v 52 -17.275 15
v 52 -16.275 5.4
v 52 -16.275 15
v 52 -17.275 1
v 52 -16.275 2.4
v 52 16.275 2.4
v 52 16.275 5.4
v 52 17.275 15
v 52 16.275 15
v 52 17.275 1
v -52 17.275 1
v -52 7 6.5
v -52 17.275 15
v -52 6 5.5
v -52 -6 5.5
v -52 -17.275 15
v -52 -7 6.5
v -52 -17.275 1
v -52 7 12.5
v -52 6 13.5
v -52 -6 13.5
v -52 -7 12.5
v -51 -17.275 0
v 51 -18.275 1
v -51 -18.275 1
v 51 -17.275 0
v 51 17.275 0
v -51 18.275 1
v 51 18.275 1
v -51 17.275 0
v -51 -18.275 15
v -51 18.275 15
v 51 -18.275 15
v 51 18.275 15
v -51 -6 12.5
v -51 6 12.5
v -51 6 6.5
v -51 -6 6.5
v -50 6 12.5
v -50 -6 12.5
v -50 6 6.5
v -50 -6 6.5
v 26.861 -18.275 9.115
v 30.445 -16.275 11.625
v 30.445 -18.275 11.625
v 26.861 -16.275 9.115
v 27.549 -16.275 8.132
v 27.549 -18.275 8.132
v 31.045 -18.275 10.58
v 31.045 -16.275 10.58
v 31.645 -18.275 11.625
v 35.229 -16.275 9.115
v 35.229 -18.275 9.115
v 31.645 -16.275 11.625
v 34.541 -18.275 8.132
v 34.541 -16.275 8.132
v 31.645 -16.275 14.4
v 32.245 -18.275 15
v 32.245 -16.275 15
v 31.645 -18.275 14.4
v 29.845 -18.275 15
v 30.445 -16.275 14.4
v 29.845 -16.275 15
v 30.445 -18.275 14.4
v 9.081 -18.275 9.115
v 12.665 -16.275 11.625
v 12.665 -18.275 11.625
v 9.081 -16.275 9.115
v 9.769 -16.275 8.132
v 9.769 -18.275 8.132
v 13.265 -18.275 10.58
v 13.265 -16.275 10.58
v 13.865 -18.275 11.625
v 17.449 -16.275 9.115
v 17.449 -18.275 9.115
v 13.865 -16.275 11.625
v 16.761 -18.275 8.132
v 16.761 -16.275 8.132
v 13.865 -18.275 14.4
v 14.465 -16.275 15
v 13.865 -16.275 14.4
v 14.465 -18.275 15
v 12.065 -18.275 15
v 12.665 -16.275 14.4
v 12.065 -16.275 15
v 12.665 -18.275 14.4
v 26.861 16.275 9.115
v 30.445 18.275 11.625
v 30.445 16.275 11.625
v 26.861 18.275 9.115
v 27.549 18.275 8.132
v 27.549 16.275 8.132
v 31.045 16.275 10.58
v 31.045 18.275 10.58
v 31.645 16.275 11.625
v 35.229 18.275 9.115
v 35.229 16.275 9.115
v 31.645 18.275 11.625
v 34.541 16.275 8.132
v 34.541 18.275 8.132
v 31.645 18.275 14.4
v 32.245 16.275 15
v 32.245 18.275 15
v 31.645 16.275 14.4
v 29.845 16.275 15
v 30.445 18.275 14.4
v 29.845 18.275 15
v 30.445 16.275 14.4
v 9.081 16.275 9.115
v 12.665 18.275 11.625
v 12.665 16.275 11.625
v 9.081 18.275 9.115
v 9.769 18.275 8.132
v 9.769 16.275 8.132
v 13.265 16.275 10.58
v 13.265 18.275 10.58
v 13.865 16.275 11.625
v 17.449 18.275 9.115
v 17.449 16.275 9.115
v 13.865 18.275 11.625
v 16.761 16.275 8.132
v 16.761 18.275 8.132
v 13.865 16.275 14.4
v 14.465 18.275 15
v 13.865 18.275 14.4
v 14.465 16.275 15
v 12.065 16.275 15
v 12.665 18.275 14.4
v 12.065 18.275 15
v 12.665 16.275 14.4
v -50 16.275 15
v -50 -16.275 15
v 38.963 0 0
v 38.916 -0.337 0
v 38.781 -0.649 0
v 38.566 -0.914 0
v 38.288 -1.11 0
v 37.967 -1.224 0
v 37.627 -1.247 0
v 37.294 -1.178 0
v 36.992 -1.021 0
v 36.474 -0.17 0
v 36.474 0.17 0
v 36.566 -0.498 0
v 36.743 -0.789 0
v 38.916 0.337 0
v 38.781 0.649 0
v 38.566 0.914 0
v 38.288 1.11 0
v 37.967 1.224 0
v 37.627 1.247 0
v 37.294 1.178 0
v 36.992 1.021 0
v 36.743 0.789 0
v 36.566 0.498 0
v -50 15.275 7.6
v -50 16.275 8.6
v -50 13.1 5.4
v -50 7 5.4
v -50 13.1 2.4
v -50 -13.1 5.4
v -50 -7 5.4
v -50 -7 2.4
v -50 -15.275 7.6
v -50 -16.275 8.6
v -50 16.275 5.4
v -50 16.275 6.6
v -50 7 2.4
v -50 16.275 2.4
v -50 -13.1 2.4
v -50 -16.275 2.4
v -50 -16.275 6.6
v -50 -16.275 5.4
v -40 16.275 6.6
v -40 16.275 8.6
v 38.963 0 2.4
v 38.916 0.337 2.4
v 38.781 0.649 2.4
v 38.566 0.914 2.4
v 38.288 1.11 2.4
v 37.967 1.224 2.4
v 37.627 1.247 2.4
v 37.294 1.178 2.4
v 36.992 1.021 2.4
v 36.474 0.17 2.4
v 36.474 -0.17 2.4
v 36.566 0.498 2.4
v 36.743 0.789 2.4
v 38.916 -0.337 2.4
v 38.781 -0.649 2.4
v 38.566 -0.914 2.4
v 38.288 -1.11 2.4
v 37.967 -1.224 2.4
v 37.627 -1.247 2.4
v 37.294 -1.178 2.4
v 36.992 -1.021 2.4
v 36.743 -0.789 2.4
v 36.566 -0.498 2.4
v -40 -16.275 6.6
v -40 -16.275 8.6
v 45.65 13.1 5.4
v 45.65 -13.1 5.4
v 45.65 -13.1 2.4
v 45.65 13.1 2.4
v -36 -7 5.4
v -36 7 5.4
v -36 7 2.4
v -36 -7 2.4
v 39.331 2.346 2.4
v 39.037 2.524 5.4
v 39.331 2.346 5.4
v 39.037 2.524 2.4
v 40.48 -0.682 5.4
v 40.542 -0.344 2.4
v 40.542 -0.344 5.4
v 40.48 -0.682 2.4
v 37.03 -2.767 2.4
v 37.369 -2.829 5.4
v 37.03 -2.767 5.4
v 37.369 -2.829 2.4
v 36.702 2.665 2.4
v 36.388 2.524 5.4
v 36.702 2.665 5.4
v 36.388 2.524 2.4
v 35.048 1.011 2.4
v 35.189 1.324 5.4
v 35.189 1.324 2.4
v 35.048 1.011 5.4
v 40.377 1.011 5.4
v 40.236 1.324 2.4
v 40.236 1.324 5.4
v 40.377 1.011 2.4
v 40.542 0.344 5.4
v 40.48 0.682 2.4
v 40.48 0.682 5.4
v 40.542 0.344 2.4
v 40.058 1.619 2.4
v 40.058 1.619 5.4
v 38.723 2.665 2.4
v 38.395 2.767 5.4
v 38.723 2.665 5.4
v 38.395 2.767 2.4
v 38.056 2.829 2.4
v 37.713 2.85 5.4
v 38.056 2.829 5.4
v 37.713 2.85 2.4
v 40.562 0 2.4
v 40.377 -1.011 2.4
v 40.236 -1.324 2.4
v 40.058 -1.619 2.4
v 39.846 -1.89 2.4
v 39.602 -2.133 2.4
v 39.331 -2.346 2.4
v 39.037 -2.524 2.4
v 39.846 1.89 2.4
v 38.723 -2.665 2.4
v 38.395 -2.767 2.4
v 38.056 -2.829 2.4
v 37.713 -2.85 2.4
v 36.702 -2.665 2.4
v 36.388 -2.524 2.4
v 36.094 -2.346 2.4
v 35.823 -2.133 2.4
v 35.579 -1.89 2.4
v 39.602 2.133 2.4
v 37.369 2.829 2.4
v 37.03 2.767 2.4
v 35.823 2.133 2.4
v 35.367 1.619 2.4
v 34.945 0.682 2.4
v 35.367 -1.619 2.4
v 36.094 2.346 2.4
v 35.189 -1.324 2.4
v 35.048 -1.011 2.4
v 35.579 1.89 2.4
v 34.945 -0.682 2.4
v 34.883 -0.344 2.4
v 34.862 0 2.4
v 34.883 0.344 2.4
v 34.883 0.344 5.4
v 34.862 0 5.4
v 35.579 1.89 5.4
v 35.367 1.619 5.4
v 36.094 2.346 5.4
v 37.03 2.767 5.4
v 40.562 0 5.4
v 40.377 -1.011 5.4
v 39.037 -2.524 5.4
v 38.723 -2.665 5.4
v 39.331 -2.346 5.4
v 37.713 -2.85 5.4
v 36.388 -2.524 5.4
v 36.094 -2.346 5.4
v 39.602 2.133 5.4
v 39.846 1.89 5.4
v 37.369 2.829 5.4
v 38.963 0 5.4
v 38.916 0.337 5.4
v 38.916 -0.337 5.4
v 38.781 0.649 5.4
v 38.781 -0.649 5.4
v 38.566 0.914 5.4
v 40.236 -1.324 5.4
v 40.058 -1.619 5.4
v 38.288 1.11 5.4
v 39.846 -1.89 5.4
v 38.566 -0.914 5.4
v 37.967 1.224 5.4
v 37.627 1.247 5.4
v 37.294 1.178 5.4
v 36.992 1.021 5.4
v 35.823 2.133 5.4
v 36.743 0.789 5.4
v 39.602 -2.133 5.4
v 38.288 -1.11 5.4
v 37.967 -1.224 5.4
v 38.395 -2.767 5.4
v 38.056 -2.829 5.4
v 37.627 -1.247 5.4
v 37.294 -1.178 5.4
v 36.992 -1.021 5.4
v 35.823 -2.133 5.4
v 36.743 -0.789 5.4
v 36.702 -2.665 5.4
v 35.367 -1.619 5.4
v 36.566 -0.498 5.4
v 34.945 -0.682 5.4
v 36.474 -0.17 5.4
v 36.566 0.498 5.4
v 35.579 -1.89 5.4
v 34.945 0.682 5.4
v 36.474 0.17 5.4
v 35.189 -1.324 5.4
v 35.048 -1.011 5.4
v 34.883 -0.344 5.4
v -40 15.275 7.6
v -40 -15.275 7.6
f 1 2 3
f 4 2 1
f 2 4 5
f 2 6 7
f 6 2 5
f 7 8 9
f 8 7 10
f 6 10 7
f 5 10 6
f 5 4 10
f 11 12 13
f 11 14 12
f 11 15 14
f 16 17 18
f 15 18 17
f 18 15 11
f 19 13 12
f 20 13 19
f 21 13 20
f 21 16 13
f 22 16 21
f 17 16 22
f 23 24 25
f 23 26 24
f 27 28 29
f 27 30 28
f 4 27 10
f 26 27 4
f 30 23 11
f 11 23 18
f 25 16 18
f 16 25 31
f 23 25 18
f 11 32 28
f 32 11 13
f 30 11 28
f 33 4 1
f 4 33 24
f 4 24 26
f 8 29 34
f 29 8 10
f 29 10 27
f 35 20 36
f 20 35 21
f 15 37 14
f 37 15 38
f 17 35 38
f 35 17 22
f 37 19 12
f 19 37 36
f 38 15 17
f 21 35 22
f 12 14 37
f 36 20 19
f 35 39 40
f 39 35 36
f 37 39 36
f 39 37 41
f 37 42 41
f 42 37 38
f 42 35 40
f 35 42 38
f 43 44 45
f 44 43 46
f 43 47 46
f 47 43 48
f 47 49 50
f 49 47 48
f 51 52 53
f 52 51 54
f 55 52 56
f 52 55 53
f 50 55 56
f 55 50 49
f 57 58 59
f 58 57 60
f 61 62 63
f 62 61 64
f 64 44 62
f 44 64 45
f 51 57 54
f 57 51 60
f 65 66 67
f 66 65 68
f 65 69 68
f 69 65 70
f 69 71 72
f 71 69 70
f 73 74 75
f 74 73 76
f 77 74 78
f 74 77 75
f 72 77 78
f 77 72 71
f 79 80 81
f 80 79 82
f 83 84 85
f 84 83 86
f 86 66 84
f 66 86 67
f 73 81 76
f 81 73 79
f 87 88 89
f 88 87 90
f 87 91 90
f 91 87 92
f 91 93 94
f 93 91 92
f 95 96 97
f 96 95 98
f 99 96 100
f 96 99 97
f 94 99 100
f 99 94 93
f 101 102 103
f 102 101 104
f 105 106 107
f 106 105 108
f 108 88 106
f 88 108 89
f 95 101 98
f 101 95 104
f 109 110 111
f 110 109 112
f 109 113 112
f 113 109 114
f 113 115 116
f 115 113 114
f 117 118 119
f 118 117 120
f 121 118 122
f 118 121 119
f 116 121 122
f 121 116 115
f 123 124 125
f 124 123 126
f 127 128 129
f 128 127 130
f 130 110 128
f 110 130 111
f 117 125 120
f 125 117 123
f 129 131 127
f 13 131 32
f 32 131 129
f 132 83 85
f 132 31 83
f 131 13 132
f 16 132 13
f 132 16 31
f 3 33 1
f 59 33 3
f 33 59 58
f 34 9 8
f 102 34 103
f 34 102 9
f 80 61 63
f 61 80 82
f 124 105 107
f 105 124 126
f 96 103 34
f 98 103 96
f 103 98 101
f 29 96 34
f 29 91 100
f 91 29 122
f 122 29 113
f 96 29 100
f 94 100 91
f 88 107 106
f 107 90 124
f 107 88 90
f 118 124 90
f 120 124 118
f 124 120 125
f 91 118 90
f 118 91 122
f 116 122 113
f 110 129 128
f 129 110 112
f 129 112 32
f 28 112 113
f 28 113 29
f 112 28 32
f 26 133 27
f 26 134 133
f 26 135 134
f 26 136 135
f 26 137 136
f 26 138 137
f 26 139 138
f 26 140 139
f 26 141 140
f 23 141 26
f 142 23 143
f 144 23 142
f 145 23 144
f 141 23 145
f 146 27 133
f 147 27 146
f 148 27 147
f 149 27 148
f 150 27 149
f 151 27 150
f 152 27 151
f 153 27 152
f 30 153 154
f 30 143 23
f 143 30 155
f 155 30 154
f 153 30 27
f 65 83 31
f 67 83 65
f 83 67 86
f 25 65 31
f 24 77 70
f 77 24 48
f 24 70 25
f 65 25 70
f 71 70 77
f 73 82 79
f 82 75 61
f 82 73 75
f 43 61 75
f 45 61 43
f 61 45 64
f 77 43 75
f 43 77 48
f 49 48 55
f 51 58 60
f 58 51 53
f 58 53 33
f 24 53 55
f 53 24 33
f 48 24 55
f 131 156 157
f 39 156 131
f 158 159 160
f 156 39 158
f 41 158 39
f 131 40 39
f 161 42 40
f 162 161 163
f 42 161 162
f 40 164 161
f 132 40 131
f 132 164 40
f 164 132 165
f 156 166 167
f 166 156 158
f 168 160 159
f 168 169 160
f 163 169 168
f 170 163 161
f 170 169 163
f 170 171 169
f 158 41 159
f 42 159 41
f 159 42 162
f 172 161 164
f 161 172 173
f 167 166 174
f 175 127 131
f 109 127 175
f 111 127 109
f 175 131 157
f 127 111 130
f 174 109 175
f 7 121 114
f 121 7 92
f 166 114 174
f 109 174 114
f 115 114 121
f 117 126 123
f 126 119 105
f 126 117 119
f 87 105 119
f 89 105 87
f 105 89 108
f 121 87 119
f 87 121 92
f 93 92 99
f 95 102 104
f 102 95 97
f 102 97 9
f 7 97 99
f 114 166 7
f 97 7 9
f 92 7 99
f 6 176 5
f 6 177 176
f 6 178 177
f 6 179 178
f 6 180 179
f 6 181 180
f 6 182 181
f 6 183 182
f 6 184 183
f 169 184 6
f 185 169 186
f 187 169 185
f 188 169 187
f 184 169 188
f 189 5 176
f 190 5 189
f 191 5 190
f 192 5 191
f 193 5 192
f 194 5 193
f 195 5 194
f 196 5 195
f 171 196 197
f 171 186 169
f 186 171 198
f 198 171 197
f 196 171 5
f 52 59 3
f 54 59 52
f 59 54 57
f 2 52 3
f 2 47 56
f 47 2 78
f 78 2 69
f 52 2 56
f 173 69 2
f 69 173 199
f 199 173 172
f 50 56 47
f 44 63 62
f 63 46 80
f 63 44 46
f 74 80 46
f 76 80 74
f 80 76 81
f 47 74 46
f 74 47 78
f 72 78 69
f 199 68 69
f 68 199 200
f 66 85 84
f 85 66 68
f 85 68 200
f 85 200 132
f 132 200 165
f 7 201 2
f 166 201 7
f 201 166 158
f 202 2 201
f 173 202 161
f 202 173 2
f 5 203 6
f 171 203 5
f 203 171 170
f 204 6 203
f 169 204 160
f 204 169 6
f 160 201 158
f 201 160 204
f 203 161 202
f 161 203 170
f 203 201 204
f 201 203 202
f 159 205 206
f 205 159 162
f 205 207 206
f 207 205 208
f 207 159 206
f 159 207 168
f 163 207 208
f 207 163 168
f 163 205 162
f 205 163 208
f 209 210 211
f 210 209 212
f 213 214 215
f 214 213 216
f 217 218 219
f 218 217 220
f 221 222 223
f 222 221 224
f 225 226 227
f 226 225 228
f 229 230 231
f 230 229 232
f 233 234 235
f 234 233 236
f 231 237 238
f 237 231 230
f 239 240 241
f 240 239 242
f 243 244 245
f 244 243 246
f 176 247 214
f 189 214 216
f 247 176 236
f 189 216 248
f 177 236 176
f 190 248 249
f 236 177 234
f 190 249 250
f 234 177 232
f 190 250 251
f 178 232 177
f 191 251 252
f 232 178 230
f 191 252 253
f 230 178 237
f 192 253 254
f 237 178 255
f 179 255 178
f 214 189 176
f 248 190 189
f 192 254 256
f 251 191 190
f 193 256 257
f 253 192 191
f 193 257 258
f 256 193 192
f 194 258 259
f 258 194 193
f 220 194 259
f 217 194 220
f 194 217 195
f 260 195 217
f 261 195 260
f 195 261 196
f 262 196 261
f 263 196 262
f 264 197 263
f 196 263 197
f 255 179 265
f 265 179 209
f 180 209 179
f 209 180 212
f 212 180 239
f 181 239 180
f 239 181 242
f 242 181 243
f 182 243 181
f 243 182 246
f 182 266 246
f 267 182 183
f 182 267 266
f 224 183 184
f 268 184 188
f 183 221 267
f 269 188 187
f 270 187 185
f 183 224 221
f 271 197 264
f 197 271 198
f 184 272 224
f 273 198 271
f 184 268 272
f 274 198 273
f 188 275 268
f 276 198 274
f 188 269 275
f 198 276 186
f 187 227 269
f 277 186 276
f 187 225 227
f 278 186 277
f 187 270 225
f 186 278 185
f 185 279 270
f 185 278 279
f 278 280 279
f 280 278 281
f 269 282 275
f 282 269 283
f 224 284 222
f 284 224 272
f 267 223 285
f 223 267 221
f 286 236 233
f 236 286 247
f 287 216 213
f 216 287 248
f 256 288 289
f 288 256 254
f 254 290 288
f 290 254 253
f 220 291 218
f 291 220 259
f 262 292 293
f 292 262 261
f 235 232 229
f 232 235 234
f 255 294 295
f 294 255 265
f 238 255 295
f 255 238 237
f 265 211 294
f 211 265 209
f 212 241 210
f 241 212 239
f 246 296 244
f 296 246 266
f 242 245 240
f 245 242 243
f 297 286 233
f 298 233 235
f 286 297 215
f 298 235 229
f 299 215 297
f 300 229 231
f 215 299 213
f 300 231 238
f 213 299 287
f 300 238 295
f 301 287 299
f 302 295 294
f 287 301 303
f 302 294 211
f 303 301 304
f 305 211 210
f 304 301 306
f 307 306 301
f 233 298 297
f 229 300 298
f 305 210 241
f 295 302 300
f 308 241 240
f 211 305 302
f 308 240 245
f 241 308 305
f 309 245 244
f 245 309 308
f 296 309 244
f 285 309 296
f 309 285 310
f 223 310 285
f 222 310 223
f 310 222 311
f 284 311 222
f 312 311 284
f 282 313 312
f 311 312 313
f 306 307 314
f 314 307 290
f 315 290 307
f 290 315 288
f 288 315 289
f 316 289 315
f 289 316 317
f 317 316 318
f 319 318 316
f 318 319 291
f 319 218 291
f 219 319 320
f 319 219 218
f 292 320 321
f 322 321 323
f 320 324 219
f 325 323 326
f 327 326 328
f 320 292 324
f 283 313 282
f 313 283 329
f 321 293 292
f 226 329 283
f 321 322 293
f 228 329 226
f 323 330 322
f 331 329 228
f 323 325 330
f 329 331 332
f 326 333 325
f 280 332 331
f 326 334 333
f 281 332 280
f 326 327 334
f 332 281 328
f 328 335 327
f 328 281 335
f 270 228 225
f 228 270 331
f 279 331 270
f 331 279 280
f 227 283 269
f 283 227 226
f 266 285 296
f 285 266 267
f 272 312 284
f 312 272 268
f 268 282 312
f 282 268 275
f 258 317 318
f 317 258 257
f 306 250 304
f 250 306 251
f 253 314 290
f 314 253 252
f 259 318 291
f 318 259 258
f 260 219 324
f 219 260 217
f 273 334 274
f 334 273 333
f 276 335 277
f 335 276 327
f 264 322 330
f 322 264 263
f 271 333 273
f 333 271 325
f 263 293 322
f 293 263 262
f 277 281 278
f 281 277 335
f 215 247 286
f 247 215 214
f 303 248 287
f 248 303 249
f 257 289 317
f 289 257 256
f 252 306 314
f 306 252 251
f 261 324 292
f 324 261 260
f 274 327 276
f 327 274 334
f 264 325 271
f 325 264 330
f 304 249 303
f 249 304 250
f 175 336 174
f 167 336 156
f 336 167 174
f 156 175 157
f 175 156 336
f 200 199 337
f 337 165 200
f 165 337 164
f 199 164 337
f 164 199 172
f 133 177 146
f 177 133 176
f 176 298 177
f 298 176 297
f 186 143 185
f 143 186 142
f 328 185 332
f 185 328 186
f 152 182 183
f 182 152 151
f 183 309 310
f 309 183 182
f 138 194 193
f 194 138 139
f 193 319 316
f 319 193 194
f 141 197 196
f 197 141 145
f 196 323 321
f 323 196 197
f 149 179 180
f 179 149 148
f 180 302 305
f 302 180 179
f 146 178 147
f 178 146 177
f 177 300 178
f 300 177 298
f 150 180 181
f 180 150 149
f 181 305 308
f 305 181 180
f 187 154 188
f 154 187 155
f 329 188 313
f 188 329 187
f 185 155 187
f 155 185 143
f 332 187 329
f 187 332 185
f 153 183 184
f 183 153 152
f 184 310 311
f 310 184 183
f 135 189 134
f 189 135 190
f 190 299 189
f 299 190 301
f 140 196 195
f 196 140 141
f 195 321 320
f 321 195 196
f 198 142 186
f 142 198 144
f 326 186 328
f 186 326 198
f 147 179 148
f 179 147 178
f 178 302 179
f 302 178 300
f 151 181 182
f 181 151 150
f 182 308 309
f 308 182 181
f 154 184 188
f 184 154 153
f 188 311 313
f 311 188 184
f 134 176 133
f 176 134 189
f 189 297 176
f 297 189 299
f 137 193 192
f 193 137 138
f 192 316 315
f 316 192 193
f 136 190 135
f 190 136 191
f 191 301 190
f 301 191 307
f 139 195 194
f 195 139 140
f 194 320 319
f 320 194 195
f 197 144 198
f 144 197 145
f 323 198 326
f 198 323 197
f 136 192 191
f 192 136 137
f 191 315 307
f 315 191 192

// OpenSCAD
function in2mm(v) = 25.4*v;

$fa = 0.5;
$fs = 0.35;
eps = 1;

wall = 2;
standoff_wall = 1.6;

pcb_width = in2mm(1.25);
pcb_length = in2mm(4);
pcb_height = 1.6;

pcb_clearance = 0.4;
pin_clearance = 3;

rgb_offset_x = in2mm(0.825);
rgb_offset_y = in2mm(0.175);
rgb_spacing = in2mm(0.7);

rgb_cable_width = 5;
rgb_cable_height = 1.2;

usb_width = 12;
usb_height = 6;
usb_center_offset_z = 2.5;

case_width = 2*wall + 2*pcb_clearance + pcb_width;
case_length = wall + pcb_clearance + pcb_length;
case_floor = 2.4;
case_pcb_depth = 8;
case_height = case_floor + pin_clearance + pcb_height + case_pcb_depth;

screw_diameter = 2.5;
screw_length = 6;
screw_offset = in2mm(0.5625);

clip_size = 1;

assert(pcb_height + pin_clearance + case_floor >= screw_length, "screw is too long for the mounting hole");

module mirror_x() {
    children(); mirror([1, 0, 0]) children();
}

module mirror_y() {
    children(); mirror([0, 1, 0]) children();
}

module mirror_z() {
    children(); mirror([0, 0, 1]) children();
}

module rgb_cable_guide(h, angle=45) {
    translate([0, -eps/2, -h])
    union() {
        mirror_x()
        translate([rgb_cable_height/2, 0, 0])
        rotate([0, -angle, 0])
        translate([-rgb_cable_width, 0, 0])
        cube([rgb_cable_width, wall + eps, rgb_cable_height]);

        translate([-rgb_cable_height/2, 0, 0])
        cube([rgb_cable_height, wall + eps, h + eps]);

        mirror_x()
        translate([rgb_cable_height/2, (wall + eps)/2, h])
        rotate([180, 0, 90])
        chamfer_mask(rgb_cable_height/2, wall + eps);
    }
}

module chamfer_mask(s, length) {
    rotate([0, -90, 0])
    linear_extrude(length, center=true)
    polygon([
        [-eps, -eps], [s, -eps], [s, 0], [0, s], [-eps, s]
    ]);
}

module chamfer_outside_corner_mask(s) {
    polyhedron(
        points = [
            [0, 0, 0], [0, 0, s],
            [s, 0, s], [s, 0, 0],
            [0, s, s], [0, s, 0],
            [s, s, 0]
        ],
        faces = [
            // chamfer face
            [2, 4, 6],
            // side faces
            [2, 6, 3],
            [0, 1, 2, 3],
            [5, 4, 1, 0],
            [5, 6, 4],
            // top
            [1, 4, 2],
            // bottom
            [0, 3, 6, 5],
        ]
    );
}

module chamfer_inside_corner_mask(s) {
    polyhedron(
        points = [
            [eps, 0, 0], [0, eps, 0], [0, 0, eps],
            [0, 0, -s], [eps, 0, -s], [0, eps, -s],
            [-s, 0, 0], [-s, eps, 0], [-s, 0, eps],
            [0, -s, 0], [eps, -s, 0], [0, -s, eps],
        ],
        faces = [
            // chamfer face
            [3, 6, 9],
            // bottom side faces
            [3, 9, 10, 4],
            [10, 0, 4],
            [3, 5, 7, 6],
            [7, 5, 1],
            [1, 5, 4, 0],
            // top side faces
            [9, 6, 8, 11],
            [9, 11, 10],
            [10, 11, 2, 0],
            [0, 2, 1],
            [1, 2, 8, 7],
            [6, 7, 8],
            // top face
            [2, 11, 8],
            // bottom face
            [3, 4, 5],
        ]
    );
}

module case_shell() {
    chamfer = wall/2;

    difference() {
        // body
        translate([-case_length/2, -case_width/2, 0])
        cube([case_length, case_width, case_height]);

        // bottom length chamfers
        mirror_y()
        translate([0, -case_width/2, 0])
        chamfer_mask(chamfer, case_length);

        // bottom width chamfers
        mirror_x()
        translate([case_length/2, 0, 0])
        rotate([0, 0, 90])
        chamfer_mask(chamfer, case_width);

        // vertical corner chamfers
        mirror_x()
        mirror_y() {
            translate([-case_length/2, -case_width/2, 0]) {
                translate([0, 0, case_height/2])
                rotate([0, 90, 0])
                chamfer_mask(chamfer, case_height + eps);

                chamfer_outside_corner_mask(chamfer);
            }
        }

        // main cutout 
        translate([
            -case_length/2 + wall,
            -pcb_width/2 - pcb_clearance,
            case_floor
        ])
        cube([
            pcb_clearance + pcb_length + eps,
            2*pcb_clearance + pcb_width,
            case_height - case_floor + eps,
        ]);

        // usb cutout
        let (
            dz = case_floor + pin_clearance + pcb_height + usb_center_offset_z
        ) {
            translate([
                -(case_length + eps)/2,
                -usb_width/2,
                dz - usb_height/2,
            ])
            cube([wall + eps, usb_width, usb_height]);

            // chamfers
            translate([-case_length/2, 0, dz]) {
                mirror_z()
                translate([0, 0, usb_height/2])
                rotate([0, 0, -90])
                chamfer_mask(chamfer, usb_width);

                mirror_y()
                translate([0, -usb_width/2, 0])
                rotate([90, 0, 0])
                rotate([0, 0, -90])
                chamfer_mask(chamfer, usb_height);

                mirror_y()
                mirror_z()
                translate([0, -usb_width/2, -usb_height/2])
                rotate([0, -90, 0])
                chamfer_inside_corner_mask(chamfer);
            }
        }

        // rgb cable guides
        mirror_y() {
            for (i = [0, 1]) {
                translate([
                    case_length/2 - rgb_offset_x - i*rgb_spacing,
                    -case_width/2,
                    case_height,
                ])
                rgb_cable_guide(0.5 * case_pcb_depth, angle=35);
            }
        }
    }
}

module standoffs() {
    edge_width = in2mm(0.125);
    pico_length = 14;
    pico_width = 14;
    sata_length = in2mm(0.25);
    inner_w = pcb_width + 2*pcb_clearance;

    // edge supports
    mirror_y()
    translate([
        -case_length/2 + wall,
        (pcb_width/2 + pcb_clearance) - edge_width,
        0,
    ])
    cube([pcb_length + pcb_clearance, edge_width, pin_clearance]);

    // sata connector support
    translate([case_length/2 - sata_length, -inner_w/2, 0])
    cube([sata_length, inner_w, pin_clearance]);

    // pico support
    translate([-case_length/2 + wall, -pico_width/2, 0])
    cube([pico_length, pico_width, pin_clearance]);

    // screw standoff
    translate([case_length/2 - screw_offset, 0, 0])
    cylinder(d=screw_diameter + 2*standoff_wall, h=pin_clearance);
}

module clips(length) {
    dz = pcb_height - pcb_clearance;
    mirror_y()
    translate([
        0,
        pcb_width/2 + pcb_clearance,
        case_floor + pin_clearance + clip_size + dz,
    ])
    rotate([0, 90, 0])
    cylinder(r=clip_size, h=length, $fn=4);
}

module case() {
    difference() {
        union() {
            case_shell();
            translate([0, 0, case_floor]) standoffs();

            translate([-case_length/2 + wall, 0, 0])
            clips(10);
        }

        // screw hole
        translate([case_length/2 - screw_offset, 0, -eps/2])
        cylinder(d=screw_diameter, h=case_floor + pin_clearance + eps);
    }
}

case();
